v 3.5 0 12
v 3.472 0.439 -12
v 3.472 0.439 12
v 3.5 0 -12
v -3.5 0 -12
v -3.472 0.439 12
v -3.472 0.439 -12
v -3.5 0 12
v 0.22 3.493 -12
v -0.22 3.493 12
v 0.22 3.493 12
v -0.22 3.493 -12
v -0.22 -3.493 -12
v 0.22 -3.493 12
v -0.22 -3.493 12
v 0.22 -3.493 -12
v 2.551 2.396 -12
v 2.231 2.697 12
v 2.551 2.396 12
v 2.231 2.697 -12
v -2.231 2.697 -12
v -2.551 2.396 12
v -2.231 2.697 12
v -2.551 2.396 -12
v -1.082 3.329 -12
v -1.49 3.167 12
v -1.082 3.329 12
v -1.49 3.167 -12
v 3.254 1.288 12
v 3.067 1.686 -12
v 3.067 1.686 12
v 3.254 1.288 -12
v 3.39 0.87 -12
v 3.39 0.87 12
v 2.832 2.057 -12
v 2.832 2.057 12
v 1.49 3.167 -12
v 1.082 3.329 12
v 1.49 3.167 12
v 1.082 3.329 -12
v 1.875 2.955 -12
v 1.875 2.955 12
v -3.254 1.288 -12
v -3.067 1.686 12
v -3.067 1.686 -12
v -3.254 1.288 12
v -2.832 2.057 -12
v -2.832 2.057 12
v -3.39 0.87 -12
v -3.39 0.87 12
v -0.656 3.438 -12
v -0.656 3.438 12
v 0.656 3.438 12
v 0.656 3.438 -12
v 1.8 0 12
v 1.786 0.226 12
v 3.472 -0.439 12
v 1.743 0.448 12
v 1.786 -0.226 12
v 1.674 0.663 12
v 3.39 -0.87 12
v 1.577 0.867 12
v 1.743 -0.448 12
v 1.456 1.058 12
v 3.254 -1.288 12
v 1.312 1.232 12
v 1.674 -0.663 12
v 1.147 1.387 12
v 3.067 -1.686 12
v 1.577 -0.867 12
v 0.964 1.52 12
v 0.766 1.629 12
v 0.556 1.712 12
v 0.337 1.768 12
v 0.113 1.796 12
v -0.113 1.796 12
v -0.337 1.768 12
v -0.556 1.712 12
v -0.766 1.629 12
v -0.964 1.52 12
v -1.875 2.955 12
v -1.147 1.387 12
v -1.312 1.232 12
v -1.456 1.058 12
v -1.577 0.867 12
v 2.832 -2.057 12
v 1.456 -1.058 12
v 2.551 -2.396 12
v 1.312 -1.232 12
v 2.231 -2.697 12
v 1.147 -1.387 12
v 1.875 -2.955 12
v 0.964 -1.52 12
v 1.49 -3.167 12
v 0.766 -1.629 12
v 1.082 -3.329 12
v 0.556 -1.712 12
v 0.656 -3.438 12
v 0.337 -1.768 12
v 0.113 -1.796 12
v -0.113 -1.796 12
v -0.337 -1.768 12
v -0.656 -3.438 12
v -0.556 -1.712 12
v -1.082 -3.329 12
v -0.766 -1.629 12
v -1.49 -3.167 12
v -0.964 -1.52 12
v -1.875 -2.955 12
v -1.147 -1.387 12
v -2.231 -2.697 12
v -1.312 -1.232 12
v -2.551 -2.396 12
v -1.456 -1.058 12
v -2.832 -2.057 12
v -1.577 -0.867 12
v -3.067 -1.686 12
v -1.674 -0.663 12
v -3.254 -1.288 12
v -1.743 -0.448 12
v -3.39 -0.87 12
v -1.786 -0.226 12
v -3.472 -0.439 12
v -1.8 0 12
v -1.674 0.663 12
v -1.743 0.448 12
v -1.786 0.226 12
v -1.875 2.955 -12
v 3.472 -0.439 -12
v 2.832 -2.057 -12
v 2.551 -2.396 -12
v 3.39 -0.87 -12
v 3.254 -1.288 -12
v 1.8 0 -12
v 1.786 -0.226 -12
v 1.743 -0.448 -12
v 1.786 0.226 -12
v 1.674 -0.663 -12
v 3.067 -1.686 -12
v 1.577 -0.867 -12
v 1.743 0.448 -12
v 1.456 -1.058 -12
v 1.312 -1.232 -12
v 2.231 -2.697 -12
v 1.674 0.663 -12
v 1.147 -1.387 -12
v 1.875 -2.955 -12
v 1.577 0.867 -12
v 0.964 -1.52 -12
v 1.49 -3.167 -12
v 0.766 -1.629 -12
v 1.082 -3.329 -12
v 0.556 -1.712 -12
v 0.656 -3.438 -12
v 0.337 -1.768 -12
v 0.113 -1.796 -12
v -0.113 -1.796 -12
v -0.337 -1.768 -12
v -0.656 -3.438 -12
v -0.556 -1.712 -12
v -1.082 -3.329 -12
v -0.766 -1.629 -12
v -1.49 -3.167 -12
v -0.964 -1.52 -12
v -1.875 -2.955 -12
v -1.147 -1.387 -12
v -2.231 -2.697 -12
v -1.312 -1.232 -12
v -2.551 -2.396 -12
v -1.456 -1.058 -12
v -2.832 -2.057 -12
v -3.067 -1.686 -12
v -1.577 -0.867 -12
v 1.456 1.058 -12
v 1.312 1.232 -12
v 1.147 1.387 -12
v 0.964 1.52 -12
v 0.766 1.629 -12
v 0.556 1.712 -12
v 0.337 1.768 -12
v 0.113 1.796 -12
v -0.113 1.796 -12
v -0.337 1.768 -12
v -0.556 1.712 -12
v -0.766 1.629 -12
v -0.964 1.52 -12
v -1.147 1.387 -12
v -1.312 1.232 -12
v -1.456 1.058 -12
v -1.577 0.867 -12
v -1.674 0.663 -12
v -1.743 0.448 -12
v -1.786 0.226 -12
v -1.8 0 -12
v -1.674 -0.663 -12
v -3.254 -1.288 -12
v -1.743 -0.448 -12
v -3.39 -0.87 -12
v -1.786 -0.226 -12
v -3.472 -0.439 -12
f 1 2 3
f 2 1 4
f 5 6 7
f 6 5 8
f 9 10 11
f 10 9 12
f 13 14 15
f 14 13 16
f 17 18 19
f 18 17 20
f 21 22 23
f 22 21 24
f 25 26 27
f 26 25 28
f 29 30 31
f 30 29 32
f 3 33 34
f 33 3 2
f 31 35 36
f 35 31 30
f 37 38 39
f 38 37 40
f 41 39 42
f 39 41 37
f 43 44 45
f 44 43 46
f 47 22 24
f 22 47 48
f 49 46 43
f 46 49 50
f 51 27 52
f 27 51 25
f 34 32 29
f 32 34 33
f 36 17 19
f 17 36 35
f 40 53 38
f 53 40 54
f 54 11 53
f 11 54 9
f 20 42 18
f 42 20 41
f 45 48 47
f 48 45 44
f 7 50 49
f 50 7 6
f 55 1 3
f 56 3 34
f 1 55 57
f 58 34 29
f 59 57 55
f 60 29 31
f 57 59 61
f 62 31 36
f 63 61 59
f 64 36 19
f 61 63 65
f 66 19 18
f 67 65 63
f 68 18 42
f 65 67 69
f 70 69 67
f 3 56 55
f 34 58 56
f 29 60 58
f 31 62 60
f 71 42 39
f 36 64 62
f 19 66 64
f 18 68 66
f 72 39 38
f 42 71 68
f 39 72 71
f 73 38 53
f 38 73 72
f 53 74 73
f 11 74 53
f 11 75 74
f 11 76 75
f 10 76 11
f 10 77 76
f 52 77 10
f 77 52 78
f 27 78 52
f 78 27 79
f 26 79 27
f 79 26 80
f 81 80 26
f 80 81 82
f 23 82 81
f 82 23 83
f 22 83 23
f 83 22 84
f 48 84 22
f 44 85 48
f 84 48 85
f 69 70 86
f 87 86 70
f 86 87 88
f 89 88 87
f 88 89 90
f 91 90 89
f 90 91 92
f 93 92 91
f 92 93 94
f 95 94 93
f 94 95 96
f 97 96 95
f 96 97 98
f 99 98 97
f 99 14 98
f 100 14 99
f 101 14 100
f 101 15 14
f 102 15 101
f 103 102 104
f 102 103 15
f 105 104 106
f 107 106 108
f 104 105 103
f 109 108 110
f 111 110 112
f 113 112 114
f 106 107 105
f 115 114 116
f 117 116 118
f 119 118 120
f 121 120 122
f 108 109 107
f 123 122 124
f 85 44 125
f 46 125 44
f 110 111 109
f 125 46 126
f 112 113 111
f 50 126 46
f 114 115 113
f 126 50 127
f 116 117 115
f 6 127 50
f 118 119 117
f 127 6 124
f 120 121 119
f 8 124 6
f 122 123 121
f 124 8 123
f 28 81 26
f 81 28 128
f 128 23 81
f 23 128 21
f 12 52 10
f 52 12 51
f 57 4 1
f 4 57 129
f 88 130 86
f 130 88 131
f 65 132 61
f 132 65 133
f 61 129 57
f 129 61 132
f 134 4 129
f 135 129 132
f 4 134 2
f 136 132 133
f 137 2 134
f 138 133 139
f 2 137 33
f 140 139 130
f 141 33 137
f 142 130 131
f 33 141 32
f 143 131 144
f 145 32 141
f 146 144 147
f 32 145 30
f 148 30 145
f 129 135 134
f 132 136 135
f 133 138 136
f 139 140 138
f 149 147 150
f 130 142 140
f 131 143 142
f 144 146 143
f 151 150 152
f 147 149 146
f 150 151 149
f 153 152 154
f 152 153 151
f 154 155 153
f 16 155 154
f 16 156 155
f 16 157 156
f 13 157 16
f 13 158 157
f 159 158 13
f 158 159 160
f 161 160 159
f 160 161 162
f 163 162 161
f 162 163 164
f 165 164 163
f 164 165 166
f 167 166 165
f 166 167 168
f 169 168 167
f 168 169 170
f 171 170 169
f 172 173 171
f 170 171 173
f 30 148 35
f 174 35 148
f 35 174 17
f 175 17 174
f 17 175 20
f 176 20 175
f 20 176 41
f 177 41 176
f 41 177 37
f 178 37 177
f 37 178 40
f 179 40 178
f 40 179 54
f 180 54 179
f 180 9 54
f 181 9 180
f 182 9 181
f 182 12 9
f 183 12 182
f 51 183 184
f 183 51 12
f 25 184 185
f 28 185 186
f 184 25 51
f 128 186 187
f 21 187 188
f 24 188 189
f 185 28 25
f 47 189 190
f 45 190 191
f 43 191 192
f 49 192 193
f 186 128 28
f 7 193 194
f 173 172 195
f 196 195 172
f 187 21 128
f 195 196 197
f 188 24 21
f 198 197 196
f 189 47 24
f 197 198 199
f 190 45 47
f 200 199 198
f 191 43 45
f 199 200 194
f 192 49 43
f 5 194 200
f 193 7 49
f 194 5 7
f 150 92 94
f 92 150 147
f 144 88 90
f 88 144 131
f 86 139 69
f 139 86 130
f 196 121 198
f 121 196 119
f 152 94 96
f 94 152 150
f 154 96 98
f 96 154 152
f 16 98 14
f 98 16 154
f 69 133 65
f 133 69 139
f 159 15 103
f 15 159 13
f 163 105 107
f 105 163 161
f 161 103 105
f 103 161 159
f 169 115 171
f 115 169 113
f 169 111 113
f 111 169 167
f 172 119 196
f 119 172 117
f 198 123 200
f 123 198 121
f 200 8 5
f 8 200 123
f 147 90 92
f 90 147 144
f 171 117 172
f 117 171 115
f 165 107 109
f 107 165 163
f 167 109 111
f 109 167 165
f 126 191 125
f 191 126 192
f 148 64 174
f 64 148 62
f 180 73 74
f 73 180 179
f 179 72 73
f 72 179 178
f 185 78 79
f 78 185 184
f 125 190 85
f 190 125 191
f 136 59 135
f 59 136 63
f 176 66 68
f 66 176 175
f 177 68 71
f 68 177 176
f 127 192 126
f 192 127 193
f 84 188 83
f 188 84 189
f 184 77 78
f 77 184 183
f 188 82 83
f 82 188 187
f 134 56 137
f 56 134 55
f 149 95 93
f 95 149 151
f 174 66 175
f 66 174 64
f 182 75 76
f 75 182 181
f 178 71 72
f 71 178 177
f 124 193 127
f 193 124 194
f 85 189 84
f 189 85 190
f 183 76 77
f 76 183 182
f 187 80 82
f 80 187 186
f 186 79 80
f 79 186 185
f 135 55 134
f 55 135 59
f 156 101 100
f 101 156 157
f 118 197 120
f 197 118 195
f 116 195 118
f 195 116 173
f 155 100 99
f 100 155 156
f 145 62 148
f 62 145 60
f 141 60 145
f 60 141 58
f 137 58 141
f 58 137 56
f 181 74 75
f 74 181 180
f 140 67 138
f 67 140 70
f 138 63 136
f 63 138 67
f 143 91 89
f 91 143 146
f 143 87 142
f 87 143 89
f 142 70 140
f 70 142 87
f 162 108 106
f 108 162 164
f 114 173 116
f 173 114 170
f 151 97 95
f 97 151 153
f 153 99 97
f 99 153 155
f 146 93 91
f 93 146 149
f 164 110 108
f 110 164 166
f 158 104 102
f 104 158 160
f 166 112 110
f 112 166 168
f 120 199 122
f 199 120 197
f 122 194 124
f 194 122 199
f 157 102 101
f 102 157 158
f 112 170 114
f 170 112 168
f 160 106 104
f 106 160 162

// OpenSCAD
$fn = 50;


difference() {
	union() {
		translate(v = [0, 0, -12.0000000000]) {
			cylinder(h = 24, r = 3.5000000000);
		}
	}
	union() {
		translate(v = [0, 0, -100.0000000000]) {
			cylinder(h = 200, r = 1.8000000000);
		}
	}
}
